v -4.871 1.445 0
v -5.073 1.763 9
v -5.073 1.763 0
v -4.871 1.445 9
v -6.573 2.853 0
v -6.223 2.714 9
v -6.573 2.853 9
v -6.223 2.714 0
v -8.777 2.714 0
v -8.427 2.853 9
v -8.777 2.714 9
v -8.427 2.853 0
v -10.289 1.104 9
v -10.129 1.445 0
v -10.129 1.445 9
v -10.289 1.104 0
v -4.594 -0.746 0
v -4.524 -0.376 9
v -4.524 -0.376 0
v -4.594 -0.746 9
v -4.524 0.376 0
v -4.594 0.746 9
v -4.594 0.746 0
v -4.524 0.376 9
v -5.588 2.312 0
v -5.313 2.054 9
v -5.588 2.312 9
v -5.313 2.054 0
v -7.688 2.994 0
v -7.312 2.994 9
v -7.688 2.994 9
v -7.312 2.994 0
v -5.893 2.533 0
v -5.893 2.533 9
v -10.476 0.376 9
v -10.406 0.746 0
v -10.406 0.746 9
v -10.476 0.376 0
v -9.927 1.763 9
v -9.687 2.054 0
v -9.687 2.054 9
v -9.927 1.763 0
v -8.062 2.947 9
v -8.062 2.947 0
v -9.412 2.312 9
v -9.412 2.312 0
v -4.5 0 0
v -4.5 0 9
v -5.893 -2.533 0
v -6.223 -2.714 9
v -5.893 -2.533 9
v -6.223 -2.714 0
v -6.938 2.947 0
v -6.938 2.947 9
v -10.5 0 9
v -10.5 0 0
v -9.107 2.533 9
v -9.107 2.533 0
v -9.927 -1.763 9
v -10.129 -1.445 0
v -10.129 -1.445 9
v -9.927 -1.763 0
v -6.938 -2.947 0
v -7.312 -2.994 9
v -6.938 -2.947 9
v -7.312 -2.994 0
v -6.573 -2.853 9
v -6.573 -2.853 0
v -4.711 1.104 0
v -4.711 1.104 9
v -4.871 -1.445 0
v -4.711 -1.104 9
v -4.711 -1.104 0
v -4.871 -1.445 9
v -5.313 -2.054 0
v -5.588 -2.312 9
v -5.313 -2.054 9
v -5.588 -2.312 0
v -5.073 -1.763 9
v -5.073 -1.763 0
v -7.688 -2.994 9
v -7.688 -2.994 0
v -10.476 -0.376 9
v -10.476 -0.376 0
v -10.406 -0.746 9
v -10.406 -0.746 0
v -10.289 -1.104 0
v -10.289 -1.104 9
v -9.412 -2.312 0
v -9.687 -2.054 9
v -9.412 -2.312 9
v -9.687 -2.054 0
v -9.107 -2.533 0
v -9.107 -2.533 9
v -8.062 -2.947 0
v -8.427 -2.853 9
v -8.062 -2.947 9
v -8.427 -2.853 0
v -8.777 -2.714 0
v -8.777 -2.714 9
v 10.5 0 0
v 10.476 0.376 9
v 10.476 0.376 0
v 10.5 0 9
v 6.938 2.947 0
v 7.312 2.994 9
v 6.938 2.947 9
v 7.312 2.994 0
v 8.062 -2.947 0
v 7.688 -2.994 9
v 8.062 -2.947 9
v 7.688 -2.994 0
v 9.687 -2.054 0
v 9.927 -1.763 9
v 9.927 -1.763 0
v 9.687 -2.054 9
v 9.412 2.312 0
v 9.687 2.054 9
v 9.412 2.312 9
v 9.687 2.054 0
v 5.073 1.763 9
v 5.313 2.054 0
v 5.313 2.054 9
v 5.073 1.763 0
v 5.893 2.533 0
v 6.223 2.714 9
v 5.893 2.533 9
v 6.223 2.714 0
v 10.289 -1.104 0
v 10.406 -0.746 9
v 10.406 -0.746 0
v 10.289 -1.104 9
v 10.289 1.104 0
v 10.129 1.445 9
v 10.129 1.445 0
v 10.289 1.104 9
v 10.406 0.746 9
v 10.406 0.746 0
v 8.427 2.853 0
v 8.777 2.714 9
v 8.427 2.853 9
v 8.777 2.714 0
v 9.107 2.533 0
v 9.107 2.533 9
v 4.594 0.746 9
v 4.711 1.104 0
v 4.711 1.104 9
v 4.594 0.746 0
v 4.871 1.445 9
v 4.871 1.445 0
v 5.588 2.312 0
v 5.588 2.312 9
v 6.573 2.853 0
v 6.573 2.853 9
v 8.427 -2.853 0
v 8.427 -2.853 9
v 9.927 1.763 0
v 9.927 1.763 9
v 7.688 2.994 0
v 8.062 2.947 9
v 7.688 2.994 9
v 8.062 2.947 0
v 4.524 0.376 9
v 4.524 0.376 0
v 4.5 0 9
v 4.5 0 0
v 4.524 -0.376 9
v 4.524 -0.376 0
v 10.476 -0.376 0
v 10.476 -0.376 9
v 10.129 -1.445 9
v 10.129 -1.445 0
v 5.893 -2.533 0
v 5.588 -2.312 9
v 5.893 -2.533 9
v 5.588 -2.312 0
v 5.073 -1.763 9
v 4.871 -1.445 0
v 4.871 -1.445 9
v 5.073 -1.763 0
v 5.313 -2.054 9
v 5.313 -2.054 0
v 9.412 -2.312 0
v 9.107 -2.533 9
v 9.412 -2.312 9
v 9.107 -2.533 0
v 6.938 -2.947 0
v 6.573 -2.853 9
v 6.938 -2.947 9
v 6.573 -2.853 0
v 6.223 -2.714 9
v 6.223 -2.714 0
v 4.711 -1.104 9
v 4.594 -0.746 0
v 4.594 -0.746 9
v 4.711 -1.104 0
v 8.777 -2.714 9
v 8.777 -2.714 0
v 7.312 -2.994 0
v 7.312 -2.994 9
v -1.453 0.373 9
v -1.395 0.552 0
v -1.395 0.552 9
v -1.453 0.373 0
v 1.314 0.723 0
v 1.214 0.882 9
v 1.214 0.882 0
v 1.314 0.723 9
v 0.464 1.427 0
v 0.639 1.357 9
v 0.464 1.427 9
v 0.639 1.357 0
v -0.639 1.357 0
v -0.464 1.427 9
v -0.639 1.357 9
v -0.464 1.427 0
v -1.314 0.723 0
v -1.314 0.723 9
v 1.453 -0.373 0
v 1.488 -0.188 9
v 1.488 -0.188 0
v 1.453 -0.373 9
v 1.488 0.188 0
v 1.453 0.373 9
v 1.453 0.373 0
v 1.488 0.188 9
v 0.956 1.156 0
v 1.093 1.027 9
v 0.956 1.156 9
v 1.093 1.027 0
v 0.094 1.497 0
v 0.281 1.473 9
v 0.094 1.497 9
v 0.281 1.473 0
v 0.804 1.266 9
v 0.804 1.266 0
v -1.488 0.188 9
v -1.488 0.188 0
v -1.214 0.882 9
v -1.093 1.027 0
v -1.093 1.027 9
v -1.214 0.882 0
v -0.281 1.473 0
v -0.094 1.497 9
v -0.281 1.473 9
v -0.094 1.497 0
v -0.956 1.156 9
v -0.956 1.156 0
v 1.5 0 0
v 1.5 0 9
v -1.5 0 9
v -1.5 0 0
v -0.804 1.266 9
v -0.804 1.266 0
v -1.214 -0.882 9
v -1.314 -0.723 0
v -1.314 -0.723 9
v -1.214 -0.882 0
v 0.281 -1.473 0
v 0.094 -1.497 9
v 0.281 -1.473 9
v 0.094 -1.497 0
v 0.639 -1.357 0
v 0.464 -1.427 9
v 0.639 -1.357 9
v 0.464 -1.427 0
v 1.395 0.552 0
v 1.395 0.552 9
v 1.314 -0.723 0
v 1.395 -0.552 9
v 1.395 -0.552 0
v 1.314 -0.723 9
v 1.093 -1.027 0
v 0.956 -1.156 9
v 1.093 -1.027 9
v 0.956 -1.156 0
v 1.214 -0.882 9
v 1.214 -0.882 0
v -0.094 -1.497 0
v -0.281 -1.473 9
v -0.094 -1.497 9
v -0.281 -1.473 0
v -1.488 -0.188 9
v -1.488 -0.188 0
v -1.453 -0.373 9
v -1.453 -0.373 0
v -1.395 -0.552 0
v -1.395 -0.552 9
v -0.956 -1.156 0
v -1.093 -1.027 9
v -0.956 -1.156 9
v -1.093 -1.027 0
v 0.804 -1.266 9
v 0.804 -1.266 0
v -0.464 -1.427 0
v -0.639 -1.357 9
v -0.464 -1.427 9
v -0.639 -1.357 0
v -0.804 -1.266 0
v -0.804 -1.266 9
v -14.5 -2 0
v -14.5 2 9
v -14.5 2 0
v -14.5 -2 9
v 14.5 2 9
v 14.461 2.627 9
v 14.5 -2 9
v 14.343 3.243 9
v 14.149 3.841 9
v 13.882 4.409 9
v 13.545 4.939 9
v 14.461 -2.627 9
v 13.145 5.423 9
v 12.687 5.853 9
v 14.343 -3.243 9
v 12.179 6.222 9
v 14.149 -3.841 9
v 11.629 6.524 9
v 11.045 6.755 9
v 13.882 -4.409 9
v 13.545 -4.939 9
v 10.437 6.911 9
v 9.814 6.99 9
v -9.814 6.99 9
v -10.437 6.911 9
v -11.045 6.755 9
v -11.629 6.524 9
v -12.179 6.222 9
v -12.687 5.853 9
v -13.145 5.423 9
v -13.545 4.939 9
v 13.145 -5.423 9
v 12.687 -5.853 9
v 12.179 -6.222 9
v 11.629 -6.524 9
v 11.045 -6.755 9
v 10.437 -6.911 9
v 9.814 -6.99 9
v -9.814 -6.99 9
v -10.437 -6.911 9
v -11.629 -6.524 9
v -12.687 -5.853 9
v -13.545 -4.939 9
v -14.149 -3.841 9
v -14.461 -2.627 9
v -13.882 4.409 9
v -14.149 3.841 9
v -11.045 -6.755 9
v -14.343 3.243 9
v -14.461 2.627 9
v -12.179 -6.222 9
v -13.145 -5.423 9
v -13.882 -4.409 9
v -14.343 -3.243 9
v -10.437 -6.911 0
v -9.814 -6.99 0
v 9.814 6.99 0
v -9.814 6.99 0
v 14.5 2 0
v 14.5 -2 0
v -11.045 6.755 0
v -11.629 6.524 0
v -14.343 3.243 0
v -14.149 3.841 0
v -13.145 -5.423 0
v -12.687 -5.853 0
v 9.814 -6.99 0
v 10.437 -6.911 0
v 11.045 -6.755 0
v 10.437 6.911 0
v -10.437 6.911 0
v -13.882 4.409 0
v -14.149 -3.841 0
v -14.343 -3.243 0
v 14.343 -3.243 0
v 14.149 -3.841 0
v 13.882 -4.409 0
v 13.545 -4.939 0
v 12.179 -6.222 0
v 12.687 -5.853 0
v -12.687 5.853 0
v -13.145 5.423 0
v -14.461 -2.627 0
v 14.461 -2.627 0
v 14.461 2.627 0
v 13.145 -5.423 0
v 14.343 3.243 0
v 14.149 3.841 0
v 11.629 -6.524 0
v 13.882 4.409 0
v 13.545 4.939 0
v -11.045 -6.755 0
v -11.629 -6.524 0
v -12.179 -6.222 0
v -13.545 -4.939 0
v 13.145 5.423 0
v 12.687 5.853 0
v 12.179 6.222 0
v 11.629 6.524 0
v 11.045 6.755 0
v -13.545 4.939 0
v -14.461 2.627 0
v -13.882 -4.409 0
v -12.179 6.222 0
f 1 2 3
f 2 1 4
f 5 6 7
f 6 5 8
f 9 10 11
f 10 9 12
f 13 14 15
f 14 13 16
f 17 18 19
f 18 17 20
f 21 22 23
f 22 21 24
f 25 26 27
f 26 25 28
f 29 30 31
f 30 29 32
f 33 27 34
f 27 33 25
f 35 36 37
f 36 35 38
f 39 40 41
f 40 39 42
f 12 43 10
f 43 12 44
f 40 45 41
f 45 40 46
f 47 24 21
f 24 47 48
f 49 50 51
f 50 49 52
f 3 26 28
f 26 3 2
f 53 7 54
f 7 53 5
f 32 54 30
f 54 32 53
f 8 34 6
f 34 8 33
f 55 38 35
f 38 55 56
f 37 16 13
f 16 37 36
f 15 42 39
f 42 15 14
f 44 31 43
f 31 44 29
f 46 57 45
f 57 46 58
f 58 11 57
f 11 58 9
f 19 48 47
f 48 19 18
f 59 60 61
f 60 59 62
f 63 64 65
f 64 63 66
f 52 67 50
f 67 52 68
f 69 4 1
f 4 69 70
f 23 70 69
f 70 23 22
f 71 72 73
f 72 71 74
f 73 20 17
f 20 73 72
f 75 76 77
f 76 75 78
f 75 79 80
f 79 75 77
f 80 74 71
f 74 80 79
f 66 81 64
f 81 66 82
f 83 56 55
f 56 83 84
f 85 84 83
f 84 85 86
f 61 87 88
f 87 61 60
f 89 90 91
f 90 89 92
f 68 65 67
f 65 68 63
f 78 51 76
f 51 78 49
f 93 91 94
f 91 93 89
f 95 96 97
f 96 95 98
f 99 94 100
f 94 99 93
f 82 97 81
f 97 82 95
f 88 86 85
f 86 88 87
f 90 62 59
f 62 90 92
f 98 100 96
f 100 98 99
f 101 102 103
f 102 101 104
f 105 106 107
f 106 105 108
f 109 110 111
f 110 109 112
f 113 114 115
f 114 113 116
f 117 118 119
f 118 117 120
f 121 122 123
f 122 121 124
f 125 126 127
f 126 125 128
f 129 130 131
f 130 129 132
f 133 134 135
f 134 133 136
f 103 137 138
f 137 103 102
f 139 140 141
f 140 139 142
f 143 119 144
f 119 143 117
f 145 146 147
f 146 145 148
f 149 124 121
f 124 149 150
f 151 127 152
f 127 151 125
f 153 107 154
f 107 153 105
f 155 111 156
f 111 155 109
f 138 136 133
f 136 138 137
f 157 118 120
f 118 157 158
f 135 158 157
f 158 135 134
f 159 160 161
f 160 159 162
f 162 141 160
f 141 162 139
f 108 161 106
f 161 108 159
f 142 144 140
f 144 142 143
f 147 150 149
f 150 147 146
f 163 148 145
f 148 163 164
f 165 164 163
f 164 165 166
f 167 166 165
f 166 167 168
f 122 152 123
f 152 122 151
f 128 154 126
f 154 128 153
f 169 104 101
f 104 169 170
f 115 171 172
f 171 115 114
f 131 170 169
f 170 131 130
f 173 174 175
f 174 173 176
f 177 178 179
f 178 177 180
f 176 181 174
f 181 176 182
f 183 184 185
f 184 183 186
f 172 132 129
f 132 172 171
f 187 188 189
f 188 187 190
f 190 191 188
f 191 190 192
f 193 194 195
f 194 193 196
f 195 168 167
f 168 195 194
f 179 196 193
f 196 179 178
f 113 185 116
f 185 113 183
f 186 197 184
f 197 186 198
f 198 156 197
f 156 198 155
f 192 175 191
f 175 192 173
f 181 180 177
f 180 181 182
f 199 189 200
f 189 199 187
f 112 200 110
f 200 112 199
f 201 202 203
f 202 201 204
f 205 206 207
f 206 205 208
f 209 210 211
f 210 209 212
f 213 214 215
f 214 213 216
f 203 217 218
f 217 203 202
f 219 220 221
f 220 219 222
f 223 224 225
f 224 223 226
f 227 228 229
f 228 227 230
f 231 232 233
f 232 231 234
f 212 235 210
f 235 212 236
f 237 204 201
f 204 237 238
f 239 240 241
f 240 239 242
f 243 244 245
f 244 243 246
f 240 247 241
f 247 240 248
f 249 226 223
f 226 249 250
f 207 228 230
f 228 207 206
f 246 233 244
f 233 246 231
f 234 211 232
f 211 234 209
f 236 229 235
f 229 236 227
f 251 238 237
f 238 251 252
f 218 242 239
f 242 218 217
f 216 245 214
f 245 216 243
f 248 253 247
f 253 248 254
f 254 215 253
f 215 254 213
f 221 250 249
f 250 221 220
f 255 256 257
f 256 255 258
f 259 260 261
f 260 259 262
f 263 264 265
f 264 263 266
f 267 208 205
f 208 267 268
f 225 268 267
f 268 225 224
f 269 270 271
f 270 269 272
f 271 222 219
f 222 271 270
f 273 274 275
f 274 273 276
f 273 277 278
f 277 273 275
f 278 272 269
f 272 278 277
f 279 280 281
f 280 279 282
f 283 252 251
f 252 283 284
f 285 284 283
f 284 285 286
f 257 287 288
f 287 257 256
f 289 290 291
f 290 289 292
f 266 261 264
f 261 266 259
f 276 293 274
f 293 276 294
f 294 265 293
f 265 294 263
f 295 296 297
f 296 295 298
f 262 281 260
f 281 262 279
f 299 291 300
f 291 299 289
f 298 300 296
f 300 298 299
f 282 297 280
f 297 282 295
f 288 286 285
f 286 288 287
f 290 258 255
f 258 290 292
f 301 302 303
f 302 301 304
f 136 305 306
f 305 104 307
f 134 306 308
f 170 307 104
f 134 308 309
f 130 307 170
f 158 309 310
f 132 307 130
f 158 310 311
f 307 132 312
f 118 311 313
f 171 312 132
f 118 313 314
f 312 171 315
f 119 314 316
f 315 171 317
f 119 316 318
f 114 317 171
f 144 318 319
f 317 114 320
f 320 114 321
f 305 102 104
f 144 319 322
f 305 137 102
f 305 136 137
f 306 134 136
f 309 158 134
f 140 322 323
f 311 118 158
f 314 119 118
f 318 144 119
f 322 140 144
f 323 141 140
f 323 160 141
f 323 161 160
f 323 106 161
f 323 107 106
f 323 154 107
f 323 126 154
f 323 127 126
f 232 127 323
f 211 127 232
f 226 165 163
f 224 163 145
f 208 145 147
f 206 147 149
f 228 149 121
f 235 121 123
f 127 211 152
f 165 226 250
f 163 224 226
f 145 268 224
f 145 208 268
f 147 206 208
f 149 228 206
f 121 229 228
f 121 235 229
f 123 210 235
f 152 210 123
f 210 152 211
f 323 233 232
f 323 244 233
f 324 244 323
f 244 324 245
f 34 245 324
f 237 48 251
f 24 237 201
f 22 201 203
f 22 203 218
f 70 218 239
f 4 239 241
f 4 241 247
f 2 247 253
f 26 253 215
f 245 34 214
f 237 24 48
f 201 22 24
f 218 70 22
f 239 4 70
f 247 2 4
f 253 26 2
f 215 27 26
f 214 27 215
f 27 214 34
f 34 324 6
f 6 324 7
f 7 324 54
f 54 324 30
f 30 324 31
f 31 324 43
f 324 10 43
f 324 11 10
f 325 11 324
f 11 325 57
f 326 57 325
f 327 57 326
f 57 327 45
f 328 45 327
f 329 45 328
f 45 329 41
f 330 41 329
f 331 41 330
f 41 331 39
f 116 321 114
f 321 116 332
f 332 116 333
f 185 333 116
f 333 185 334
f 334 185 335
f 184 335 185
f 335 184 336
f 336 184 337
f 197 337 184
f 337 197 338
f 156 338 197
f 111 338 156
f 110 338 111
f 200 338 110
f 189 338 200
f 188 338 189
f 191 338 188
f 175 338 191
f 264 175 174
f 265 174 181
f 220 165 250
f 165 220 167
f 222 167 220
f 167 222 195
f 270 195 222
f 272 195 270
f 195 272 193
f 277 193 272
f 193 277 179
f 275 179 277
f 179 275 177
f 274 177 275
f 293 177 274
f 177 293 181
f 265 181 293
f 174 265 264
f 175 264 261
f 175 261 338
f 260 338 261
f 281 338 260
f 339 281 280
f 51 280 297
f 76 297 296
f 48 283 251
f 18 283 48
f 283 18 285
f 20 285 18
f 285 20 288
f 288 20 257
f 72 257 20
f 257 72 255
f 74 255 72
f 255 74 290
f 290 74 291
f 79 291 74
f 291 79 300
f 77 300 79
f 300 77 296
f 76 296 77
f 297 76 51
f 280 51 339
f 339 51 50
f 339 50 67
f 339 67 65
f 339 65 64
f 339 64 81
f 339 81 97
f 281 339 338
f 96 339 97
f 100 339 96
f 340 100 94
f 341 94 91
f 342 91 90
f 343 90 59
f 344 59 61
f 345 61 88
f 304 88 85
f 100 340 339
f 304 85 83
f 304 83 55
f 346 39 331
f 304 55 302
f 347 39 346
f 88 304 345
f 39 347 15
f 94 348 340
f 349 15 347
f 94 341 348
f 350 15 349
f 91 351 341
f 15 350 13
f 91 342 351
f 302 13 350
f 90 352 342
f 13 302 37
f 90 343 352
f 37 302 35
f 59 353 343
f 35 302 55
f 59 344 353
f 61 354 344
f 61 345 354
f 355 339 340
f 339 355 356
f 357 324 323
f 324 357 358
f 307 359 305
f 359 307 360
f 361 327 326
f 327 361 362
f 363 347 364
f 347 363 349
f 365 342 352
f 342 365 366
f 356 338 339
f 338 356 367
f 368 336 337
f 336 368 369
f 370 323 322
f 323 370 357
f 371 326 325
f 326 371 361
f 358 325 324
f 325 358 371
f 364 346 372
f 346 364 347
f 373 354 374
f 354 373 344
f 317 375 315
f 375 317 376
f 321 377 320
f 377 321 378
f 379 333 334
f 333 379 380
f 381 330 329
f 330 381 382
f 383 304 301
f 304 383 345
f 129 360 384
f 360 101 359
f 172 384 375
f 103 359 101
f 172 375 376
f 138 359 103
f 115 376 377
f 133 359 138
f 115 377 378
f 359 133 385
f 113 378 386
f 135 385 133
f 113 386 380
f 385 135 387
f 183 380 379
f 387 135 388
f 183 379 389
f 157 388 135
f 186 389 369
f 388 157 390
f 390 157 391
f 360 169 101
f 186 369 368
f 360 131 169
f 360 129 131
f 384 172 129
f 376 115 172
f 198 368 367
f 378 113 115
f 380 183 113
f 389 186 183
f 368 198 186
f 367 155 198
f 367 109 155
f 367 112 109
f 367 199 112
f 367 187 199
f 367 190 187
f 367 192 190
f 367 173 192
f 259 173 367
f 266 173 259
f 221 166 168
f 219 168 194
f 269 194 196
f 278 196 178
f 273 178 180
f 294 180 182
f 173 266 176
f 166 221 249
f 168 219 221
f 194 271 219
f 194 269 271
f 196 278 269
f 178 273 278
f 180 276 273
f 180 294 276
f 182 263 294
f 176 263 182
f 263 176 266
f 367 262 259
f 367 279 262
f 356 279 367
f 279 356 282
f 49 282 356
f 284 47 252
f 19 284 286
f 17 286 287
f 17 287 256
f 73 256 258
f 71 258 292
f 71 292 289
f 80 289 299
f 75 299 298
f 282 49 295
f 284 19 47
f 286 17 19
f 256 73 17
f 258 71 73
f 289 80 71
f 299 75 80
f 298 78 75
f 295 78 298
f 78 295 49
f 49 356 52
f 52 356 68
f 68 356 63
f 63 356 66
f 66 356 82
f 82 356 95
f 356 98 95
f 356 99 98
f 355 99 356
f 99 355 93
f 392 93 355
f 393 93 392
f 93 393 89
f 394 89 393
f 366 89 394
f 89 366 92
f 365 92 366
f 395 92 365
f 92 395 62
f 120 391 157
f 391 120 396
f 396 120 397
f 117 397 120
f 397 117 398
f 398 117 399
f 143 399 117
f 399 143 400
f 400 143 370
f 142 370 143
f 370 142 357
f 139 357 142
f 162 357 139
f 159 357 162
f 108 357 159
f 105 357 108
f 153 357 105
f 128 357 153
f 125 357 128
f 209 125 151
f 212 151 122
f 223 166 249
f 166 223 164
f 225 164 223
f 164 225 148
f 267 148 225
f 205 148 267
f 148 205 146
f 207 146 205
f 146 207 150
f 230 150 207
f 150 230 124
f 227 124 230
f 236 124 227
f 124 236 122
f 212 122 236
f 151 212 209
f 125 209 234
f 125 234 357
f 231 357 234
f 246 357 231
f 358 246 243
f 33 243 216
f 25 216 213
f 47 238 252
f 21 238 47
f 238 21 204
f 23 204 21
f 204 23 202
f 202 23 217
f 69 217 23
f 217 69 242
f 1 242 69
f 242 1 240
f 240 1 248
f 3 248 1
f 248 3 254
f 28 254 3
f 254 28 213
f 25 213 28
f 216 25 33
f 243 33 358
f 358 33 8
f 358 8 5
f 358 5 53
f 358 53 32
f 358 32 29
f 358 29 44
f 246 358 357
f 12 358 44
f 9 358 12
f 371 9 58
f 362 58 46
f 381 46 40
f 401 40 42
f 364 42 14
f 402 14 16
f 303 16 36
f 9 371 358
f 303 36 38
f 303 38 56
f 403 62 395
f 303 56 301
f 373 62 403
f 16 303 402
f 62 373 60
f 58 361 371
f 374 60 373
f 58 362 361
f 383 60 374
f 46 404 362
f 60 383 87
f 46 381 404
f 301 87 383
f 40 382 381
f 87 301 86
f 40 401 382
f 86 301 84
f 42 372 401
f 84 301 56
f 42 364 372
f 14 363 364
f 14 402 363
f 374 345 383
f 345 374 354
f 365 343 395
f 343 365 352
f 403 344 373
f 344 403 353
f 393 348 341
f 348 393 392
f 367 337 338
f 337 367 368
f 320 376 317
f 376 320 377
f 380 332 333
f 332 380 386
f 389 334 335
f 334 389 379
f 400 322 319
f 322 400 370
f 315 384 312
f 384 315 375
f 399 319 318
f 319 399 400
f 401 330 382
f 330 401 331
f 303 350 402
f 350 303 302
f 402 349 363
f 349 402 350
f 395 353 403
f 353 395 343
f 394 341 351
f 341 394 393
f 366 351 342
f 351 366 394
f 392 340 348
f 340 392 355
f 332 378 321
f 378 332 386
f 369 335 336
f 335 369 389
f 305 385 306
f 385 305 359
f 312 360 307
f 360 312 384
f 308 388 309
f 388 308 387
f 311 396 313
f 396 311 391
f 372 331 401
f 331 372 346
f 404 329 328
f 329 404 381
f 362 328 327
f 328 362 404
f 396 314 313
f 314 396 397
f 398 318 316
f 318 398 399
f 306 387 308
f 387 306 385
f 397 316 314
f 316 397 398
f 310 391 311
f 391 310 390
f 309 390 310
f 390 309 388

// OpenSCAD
$fn = 50;


difference() {
	union() {
		*color(alpha = 1.0000000000, c = "gray") {
			translate(v = [0, 7, 0]) {
				linear_extrude(height = 1) {
					text(font = "Arial:style=Bold", halign = "center", size = 4.5000000000, text = "COMMENT plate main", valign = "center");
				}
			}
		}
		hull() {
			translate(v = [-9.5000000000, 2.0000000000, 0]) {
				cylinder(h = 9, r = 5);
			}
			translate(v = [9.5000000000, 2.0000000000, 0]) {
				cylinder(h = 9, r = 5);
			}
			translate(v = [-9.5000000000, -2.0000000000, 0]) {
				cylinder(h = 9, r = 5);
			}
			translate(v = [9.5000000000, -2.0000000000, 0]) {
				cylinder(h = 9, r = 5);
			}
		}
	}
	union() {
		*color(alpha = 1.0000000000, c = "gray") {
			translate(v = [0, 7, 0]) {
				linear_extrude(height = 1) {
					text(font = "Arial:style=Bold", halign = "center", size = 4.5000000000, text = "COMMENT holes main", valign = "center");
				}
			}
		}
		translate(v = [-7.5000000000, 0.0000000000, 0]) {
			translate(v = [0, 0, -100]) {
				cylinder(h = 200, r = 3.0000000000);
			}
		}
		translate(v = [7.5000000000, 0.0000000000, 0]) {
			translate(v = [0, 0, -100]) {
				cylinder(h = 200, r = 3.0000000000);
			}
		}
		translate(v = [-7.5000000000, 0.0000000000, 0]) {
			translate(v = [0, 0, -100]) {
				cylinder(h = 200, r = 1.5000000000);
			}
		}
		translate(v = [0, 0, -100]) {
			cylinder(h = 200, r = 1.5000000000);
		}
		translate(v = [7.5000000000, 0.0000000000, 0]) {
			translate(v = [0, 0, -100]) {
				cylinder(h = 200, r = 1.5000000000);
			}
		}
	}
}
